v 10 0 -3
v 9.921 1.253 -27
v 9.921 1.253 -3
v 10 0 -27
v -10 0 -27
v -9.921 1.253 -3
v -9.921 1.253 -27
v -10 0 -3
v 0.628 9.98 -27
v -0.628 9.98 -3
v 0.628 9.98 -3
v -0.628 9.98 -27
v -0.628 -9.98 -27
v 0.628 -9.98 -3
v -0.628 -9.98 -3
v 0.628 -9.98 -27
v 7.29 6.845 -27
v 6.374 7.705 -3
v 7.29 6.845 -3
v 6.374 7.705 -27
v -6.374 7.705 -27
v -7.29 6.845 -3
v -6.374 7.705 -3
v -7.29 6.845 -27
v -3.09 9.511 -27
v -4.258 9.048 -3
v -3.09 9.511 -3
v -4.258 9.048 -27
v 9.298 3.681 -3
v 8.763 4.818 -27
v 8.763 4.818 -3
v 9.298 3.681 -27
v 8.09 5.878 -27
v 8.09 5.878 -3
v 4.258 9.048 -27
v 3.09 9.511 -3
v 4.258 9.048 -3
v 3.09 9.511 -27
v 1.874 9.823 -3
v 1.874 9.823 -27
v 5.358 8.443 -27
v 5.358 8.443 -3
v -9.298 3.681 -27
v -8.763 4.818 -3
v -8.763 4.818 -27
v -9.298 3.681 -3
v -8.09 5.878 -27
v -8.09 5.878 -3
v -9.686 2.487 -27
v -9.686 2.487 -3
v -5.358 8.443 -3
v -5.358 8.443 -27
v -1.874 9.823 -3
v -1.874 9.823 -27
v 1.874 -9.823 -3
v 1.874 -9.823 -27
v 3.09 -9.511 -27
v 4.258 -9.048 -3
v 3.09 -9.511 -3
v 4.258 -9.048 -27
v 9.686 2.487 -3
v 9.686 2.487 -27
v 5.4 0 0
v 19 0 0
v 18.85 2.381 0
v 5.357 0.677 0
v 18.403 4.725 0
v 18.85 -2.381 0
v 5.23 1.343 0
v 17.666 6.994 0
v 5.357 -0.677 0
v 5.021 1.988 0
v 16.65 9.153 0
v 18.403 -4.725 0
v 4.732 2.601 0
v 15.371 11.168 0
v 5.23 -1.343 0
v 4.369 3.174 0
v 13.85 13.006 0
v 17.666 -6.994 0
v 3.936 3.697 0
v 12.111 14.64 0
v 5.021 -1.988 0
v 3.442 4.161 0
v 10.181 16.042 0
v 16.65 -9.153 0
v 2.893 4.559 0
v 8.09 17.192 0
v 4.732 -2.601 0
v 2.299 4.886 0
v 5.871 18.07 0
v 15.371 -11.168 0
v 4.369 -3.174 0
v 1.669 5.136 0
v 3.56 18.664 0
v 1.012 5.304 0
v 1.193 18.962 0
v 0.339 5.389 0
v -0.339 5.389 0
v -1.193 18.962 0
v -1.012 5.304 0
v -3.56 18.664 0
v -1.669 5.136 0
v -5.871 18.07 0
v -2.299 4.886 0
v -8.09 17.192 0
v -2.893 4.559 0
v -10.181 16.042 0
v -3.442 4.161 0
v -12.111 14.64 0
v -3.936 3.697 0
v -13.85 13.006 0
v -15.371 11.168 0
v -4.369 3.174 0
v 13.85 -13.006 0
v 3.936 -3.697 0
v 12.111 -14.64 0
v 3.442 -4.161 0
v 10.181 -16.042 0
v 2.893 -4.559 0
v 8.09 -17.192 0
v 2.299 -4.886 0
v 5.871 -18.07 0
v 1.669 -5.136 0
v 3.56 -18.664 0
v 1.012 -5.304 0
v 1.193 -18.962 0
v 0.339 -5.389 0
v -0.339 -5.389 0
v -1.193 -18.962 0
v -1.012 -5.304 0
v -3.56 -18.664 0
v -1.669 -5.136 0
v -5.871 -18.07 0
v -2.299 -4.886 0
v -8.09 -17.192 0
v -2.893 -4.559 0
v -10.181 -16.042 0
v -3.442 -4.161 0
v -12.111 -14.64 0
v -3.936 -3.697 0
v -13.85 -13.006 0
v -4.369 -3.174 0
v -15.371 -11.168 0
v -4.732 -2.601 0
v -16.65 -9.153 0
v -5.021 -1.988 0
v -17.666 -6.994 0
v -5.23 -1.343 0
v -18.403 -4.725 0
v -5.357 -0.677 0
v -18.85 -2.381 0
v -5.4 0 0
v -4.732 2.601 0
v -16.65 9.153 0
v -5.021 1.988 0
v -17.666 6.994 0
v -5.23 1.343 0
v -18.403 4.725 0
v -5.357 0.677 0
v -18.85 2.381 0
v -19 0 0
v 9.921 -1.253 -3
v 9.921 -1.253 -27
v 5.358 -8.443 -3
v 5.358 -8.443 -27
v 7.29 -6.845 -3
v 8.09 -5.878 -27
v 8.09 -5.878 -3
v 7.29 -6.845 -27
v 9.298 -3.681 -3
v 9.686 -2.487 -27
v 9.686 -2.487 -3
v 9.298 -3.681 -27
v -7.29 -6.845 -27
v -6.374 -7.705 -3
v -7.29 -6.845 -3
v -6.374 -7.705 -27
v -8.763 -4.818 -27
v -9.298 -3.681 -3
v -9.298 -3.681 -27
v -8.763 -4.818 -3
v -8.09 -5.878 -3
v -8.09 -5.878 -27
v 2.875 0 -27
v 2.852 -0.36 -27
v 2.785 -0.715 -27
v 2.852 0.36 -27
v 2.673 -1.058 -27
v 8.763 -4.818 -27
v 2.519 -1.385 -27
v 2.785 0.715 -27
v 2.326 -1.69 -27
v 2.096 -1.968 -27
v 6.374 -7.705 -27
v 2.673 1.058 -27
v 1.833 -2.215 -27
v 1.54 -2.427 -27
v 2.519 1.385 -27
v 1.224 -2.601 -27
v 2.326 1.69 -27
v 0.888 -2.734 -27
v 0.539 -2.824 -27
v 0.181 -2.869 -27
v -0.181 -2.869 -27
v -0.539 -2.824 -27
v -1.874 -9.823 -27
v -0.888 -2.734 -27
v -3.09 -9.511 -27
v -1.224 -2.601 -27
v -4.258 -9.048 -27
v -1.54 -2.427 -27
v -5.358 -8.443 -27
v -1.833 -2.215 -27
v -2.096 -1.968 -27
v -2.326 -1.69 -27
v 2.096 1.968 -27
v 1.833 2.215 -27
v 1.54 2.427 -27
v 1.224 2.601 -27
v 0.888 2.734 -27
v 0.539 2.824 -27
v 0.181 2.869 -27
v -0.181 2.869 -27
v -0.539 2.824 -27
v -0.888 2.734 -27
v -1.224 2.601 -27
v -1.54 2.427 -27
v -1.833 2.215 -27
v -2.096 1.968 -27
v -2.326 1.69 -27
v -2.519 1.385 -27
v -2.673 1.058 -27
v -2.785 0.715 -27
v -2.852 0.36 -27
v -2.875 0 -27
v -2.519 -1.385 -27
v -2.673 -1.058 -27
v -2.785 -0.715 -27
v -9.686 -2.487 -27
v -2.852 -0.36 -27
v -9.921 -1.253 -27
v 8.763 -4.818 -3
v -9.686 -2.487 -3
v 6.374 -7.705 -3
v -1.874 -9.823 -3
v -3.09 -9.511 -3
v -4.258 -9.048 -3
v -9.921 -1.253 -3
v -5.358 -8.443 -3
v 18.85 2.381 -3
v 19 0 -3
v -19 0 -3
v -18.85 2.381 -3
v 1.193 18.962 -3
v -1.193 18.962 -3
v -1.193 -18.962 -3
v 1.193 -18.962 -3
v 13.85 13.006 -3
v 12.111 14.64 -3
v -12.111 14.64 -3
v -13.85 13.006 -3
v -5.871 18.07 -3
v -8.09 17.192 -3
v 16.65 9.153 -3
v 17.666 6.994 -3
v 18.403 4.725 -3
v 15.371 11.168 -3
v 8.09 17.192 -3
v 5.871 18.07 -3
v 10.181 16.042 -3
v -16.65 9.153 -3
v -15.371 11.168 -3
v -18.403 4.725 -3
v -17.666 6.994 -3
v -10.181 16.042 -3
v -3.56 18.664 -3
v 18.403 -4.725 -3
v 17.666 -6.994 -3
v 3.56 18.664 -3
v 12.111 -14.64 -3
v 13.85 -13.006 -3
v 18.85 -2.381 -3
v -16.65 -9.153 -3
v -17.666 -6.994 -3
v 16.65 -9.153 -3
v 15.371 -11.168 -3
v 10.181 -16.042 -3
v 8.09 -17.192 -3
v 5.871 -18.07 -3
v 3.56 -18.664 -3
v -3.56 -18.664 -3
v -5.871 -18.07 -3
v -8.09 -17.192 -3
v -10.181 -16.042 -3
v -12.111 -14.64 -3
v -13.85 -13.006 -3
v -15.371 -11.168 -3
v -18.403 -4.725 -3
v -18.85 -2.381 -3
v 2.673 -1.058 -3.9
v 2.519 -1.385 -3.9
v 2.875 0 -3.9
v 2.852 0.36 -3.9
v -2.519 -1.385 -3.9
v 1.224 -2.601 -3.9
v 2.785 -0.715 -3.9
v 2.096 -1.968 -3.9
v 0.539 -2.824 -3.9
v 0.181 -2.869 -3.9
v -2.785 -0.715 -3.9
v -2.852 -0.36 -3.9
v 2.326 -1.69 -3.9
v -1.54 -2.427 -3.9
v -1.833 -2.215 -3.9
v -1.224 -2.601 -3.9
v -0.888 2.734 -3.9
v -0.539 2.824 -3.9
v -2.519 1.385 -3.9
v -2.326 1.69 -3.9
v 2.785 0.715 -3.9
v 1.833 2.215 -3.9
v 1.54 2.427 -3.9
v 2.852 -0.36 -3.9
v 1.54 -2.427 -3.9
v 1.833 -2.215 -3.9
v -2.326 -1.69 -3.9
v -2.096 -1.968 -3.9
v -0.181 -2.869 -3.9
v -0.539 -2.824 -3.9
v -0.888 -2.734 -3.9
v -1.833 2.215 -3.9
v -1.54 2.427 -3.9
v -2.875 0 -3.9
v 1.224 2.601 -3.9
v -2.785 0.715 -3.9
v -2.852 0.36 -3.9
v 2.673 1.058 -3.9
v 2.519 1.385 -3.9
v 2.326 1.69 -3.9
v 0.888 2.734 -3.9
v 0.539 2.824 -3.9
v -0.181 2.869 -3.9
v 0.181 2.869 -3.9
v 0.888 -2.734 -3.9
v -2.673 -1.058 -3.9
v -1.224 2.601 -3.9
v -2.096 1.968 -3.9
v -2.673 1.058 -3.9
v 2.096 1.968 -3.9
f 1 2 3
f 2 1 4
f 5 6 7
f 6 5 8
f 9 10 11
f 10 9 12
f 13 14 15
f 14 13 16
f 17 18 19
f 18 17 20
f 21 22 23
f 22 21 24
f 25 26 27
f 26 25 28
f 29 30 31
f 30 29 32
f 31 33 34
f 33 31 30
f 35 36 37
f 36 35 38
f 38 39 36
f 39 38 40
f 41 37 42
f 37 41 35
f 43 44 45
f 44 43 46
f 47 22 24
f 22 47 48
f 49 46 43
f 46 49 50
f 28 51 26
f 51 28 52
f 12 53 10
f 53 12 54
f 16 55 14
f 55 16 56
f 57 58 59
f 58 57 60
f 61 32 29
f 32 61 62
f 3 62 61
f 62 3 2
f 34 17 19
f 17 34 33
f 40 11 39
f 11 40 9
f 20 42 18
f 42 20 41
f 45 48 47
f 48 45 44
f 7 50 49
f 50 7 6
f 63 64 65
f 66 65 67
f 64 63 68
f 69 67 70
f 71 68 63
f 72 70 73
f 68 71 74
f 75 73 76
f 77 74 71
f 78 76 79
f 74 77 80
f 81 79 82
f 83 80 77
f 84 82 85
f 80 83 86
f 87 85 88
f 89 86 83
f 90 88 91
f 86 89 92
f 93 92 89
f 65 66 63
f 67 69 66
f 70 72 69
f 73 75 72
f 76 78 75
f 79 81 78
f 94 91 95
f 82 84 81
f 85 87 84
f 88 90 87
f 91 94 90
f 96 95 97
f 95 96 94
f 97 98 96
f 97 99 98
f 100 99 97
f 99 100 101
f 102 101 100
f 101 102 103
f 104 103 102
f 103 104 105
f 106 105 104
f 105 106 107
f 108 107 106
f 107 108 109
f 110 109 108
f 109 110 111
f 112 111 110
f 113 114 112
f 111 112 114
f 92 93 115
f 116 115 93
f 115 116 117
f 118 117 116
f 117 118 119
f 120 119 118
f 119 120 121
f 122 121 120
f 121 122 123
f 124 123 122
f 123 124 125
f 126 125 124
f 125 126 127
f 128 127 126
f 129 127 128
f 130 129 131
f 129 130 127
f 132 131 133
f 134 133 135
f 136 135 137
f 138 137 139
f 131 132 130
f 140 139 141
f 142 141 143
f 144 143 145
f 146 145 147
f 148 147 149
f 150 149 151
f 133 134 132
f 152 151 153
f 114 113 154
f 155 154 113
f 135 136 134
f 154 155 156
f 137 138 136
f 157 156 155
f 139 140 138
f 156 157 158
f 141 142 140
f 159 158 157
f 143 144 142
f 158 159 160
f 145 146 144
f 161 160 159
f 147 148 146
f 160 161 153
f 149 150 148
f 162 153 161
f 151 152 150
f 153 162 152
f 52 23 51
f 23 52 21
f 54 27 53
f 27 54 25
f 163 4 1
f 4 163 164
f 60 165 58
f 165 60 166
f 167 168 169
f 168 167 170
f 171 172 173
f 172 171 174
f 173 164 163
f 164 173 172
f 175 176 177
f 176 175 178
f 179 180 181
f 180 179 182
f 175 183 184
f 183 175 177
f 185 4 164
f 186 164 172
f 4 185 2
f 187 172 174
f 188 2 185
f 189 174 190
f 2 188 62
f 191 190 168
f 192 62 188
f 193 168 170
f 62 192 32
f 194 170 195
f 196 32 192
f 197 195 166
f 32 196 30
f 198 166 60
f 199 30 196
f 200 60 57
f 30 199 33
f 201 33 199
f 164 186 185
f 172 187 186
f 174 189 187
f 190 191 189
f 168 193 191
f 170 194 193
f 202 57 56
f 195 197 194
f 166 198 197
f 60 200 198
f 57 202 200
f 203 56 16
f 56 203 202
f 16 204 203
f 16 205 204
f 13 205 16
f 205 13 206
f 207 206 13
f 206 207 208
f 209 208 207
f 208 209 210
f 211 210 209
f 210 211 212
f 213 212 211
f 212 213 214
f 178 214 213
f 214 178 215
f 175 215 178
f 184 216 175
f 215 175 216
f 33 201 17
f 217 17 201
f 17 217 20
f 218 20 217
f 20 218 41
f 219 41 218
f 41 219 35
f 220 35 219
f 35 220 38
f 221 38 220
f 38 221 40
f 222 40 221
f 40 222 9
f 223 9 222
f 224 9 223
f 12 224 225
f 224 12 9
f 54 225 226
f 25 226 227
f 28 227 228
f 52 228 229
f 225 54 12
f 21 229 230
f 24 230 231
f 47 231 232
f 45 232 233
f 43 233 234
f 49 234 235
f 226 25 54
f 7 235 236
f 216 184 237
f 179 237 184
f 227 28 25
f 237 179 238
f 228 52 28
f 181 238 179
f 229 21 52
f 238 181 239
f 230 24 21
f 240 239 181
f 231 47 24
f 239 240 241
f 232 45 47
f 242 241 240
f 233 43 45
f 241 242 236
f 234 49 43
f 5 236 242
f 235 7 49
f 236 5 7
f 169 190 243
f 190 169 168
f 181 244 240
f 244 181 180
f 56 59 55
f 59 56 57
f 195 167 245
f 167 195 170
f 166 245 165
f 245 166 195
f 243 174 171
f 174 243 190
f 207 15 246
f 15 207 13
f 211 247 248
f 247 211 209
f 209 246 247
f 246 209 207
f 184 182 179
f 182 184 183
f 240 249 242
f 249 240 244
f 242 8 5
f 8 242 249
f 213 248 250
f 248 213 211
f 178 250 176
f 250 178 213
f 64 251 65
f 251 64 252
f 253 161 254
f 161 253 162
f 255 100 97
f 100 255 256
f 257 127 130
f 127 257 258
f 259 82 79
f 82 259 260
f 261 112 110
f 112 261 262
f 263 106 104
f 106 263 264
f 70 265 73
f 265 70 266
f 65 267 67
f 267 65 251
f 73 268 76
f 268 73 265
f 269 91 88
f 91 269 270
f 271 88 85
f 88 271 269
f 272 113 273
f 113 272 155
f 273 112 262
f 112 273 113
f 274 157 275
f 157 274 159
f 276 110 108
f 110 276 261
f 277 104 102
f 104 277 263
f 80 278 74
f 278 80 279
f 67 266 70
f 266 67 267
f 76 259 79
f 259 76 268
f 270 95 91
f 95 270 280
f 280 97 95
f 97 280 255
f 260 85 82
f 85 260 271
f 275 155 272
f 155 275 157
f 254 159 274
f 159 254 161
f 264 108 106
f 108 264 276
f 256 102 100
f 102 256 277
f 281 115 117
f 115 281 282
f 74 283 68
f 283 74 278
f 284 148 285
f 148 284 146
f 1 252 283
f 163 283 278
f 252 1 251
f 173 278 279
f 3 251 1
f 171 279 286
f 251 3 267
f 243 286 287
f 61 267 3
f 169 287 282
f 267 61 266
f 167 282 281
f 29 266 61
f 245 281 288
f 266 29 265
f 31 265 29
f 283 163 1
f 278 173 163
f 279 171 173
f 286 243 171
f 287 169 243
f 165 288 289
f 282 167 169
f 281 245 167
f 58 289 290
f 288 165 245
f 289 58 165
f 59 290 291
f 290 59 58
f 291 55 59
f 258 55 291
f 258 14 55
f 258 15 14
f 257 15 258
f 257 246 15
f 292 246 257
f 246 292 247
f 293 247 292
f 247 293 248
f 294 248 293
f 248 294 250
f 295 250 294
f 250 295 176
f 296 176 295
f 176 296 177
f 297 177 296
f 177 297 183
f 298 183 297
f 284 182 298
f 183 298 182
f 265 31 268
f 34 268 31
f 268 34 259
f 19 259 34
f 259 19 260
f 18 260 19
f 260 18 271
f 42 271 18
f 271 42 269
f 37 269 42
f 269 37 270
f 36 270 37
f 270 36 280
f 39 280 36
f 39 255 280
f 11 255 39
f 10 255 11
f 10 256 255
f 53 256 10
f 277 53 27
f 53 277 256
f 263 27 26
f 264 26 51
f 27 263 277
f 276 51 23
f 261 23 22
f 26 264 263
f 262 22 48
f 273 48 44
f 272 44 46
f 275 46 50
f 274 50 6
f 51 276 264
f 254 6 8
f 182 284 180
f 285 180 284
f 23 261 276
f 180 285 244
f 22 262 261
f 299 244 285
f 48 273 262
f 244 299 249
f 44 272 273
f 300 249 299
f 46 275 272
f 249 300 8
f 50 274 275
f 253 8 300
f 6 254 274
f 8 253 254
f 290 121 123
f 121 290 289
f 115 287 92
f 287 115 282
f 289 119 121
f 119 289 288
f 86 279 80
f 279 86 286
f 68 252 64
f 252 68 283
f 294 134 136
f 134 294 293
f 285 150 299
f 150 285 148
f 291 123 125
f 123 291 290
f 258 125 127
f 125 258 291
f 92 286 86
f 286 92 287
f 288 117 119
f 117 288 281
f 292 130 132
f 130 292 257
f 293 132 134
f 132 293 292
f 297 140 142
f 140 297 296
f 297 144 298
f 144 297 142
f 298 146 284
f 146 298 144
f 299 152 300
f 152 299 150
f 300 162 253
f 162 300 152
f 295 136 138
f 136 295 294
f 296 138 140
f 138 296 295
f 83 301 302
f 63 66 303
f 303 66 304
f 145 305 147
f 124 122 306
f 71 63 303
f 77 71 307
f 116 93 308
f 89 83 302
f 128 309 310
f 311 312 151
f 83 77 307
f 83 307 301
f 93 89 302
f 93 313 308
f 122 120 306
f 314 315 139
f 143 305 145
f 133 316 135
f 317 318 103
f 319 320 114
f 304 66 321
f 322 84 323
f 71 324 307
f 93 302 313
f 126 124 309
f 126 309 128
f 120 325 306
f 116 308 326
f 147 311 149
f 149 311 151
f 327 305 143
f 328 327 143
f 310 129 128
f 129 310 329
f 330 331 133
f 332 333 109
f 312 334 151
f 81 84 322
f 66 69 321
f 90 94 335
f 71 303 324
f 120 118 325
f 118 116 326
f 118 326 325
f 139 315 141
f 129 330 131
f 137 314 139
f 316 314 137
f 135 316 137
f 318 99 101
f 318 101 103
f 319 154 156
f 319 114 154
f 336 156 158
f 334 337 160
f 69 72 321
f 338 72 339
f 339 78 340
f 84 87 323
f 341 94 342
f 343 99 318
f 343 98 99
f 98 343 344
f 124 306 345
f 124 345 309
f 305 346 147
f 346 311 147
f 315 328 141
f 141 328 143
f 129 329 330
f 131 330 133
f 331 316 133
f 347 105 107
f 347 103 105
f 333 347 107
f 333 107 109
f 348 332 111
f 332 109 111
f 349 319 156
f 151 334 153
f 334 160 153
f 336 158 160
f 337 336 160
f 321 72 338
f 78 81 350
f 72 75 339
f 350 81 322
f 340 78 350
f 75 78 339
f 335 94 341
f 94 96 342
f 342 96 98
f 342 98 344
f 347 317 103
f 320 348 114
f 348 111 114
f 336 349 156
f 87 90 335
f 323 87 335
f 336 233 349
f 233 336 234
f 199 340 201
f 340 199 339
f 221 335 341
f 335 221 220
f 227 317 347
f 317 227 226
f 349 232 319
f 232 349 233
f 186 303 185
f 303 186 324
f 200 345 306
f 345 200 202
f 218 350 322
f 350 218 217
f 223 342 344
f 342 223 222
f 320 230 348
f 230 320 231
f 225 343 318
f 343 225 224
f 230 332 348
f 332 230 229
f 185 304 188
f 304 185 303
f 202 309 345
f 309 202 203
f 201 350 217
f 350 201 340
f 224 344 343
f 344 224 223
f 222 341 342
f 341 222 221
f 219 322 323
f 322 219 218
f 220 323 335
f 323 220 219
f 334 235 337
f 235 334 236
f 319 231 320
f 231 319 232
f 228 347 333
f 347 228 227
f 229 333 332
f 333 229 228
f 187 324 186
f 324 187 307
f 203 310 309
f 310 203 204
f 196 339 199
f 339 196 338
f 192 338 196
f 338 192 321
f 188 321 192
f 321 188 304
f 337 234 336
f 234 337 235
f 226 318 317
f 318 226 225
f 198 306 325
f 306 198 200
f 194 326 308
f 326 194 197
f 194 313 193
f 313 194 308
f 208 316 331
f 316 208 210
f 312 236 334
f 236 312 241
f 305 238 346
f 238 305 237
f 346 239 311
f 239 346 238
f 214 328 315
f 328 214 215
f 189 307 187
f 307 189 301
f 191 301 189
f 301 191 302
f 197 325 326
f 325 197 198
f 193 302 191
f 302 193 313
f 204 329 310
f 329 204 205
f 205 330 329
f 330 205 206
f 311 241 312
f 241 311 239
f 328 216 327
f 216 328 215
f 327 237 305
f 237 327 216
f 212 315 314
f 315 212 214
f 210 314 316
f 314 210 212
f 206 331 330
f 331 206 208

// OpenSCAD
$fn = 50;


difference() {
	union() {
		translate(v = [0, 0, -27.0000000000]) {
			cylinder(h = 27, r = 10.0000000000);
		}
		translate(v = [0, 0, -3.0000000000]) {
			cylinder(h = 3, r = 19.0000000000);
		}
	}
	union() {
		translate(v = [0, 0, 0]) {
			rotate(a = [0, 0, 0]) {
				difference() {
					union() {
						#translate(v = [0, 0, -27.0000000000]) {
							cylinder(h = 27, r = 2.6000000000);
						}
						#translate(v = [0, 0, -3.9000000000]) {
							cylinder(h = 3.9000000000, r = 10.0000000000, r1 = 2.8750000000, r2 = 5.4000000000);
						}
						#translate(v = [0, 0, -27.0000000000]) {
							cylinder(h = 27, r = 2.8750000000);
						}
						#translate(v = [0, 0, -27.0000000000]) {
							cylinder(h = 27, r = 2.6000000000);
						}
					}
					union();
				}
			}
		}
	}
}
